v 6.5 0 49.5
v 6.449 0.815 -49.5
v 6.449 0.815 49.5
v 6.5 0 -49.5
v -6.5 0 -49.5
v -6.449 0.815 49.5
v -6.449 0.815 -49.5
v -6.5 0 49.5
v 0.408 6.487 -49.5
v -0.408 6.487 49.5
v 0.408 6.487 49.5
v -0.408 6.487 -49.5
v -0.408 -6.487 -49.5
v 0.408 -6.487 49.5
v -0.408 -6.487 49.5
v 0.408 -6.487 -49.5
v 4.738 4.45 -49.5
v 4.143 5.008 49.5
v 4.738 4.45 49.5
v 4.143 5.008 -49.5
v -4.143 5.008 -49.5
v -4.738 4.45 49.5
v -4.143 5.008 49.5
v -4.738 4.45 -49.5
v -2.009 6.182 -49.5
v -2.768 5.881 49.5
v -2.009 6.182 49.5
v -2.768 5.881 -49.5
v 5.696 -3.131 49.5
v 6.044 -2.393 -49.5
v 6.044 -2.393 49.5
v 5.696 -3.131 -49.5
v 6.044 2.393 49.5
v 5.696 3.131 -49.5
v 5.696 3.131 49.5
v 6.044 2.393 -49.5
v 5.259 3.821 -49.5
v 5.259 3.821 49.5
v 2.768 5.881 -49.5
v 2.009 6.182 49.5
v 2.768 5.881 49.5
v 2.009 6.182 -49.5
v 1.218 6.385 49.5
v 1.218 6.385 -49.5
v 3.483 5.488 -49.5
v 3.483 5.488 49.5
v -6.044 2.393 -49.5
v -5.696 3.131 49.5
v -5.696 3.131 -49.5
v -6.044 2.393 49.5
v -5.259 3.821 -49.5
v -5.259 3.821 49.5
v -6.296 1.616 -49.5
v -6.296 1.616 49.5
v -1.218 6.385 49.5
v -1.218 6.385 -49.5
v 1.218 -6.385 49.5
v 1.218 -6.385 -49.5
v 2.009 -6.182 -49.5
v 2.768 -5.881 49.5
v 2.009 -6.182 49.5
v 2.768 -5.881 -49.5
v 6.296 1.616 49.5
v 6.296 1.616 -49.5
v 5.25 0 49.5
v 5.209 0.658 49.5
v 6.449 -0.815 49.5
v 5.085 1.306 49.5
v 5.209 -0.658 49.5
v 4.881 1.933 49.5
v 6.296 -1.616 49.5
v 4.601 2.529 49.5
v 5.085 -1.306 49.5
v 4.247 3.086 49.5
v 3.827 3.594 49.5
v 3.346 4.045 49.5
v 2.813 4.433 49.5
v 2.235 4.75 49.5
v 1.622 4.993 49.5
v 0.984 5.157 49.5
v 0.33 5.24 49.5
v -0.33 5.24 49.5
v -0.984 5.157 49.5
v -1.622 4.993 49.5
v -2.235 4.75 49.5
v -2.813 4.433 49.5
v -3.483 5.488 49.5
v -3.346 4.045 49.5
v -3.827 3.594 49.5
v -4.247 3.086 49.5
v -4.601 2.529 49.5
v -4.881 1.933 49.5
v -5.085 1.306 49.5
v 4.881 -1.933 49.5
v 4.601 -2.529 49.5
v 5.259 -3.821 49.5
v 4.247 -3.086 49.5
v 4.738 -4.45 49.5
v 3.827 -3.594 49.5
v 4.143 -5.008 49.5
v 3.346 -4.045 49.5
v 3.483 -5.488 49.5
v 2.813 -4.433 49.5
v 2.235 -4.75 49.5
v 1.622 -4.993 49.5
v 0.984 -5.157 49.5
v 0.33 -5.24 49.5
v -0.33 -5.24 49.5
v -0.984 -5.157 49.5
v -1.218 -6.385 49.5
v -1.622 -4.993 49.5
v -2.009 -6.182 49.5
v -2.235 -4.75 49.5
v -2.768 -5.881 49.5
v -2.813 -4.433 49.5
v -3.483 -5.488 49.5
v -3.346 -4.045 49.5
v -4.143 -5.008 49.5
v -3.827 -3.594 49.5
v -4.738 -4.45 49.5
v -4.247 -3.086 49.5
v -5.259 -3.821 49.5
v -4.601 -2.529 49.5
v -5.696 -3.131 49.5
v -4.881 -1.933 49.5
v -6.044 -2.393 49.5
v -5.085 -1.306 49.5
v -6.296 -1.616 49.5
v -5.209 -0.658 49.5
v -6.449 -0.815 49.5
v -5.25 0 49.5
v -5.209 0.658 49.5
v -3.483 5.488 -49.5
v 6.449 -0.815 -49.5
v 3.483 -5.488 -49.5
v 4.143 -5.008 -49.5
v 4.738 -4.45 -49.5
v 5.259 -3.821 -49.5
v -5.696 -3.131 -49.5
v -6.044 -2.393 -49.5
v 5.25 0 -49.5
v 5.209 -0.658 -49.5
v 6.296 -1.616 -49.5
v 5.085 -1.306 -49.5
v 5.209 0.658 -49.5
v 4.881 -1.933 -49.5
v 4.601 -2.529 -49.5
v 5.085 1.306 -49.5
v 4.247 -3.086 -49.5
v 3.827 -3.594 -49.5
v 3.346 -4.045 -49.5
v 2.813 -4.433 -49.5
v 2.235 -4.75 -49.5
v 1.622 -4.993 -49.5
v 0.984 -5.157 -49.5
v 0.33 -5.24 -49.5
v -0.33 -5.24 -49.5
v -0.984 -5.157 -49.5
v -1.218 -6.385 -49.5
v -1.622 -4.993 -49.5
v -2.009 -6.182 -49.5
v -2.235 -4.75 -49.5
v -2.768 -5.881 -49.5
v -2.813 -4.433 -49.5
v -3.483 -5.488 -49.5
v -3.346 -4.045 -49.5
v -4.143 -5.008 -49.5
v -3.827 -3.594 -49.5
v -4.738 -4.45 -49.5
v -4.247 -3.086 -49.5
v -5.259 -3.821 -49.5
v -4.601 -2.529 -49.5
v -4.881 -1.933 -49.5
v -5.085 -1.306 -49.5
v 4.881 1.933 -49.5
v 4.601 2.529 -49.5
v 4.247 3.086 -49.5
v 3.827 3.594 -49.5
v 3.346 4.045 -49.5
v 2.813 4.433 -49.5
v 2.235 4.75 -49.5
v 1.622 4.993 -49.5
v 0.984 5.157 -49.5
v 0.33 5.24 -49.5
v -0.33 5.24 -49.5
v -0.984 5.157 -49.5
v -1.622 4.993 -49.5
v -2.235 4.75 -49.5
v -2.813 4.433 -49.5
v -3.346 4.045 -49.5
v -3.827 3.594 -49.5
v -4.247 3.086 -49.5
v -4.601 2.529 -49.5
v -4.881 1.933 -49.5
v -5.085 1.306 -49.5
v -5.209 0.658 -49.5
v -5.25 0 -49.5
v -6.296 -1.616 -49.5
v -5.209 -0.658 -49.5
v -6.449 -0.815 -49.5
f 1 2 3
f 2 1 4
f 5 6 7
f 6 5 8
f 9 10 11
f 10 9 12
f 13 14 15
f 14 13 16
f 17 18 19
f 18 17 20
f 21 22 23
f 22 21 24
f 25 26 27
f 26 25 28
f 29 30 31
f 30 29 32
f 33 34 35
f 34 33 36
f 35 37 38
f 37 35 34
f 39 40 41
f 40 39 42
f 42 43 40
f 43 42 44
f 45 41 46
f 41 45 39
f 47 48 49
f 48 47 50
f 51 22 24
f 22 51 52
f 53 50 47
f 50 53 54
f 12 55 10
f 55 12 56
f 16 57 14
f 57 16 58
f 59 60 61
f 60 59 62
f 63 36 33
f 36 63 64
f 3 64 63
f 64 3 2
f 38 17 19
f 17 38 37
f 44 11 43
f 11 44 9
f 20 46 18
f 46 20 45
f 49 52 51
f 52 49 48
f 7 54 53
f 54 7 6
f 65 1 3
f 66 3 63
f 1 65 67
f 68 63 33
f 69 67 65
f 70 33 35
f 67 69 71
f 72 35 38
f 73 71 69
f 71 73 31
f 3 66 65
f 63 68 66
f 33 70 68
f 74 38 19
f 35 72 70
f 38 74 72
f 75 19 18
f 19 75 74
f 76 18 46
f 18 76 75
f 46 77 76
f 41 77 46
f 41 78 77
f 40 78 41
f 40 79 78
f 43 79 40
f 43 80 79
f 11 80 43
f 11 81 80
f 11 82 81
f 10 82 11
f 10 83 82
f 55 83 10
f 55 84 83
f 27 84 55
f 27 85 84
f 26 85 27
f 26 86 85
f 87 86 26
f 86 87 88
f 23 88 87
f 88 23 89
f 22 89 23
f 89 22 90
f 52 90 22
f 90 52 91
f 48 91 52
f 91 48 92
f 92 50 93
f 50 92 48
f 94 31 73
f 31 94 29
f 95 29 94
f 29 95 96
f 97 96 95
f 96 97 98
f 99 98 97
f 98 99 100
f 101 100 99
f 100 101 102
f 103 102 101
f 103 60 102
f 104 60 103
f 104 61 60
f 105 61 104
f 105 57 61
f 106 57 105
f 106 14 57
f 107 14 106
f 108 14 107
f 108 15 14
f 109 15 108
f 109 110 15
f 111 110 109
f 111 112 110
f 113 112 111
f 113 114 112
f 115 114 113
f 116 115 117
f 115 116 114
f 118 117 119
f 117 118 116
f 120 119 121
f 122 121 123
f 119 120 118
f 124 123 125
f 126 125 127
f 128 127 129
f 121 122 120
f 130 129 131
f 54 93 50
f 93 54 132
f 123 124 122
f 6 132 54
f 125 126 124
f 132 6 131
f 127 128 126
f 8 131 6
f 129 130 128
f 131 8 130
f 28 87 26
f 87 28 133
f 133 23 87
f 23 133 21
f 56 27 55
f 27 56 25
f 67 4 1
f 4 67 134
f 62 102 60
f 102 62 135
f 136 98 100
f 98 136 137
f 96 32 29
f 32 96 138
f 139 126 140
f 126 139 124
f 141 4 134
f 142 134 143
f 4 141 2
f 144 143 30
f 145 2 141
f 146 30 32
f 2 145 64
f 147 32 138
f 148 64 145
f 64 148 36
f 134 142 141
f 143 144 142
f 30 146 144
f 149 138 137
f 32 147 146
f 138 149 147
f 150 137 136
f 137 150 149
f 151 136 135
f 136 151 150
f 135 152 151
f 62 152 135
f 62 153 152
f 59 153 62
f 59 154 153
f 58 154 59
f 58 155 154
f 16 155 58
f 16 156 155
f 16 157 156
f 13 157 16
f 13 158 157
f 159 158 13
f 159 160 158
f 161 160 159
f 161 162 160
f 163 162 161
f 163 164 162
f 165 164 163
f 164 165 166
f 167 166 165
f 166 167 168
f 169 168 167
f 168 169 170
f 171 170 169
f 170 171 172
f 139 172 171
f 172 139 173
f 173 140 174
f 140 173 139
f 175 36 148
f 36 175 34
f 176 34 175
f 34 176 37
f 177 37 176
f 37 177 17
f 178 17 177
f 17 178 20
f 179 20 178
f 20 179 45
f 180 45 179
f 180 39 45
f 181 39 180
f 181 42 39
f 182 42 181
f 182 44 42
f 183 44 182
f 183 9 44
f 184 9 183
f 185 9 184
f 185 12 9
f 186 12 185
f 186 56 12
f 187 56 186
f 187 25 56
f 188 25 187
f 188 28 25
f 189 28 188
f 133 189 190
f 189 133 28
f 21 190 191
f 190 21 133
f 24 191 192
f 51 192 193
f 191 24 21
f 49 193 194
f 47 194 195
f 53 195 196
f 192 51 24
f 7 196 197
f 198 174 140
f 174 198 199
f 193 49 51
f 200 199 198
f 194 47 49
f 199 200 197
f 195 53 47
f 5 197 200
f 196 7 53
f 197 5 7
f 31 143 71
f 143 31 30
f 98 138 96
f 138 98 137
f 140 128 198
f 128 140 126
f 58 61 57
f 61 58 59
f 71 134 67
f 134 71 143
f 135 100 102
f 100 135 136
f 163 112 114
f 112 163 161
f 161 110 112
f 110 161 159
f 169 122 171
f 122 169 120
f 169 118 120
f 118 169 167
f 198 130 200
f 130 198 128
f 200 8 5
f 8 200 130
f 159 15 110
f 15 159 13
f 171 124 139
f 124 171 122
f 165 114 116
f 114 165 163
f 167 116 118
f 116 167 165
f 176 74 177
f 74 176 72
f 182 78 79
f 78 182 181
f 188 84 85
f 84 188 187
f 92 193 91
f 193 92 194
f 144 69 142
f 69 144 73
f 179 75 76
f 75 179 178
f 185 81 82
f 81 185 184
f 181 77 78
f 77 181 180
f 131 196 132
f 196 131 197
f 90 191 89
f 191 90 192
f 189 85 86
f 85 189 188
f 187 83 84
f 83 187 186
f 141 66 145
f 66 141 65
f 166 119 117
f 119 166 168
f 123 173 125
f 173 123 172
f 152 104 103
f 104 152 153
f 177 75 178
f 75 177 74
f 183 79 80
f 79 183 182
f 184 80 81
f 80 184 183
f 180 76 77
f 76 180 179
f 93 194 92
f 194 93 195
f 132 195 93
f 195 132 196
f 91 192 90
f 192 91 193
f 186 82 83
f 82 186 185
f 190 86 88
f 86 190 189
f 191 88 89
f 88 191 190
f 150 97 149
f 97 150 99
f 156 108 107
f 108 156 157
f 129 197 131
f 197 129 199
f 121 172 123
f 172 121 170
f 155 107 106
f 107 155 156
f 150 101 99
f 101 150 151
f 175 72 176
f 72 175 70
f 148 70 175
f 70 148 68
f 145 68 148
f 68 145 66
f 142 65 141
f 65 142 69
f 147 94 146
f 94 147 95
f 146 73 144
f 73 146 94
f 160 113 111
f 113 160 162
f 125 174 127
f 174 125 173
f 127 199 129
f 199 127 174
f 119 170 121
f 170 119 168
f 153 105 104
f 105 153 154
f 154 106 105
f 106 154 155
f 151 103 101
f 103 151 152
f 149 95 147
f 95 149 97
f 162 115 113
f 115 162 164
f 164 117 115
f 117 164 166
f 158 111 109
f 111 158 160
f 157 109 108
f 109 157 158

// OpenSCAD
$fn = 50;


difference() {
	union() {
		translate(v = [0, 0, -49.5000000000]) {
			cylinder(h = 99, r = 6.5000000000);
		}
	}
	union() {
		translate(v = [0, 0, -100.0000000000]) {
			cylinder(h = 200, r = 5.2500000000);
		}
	}
}
